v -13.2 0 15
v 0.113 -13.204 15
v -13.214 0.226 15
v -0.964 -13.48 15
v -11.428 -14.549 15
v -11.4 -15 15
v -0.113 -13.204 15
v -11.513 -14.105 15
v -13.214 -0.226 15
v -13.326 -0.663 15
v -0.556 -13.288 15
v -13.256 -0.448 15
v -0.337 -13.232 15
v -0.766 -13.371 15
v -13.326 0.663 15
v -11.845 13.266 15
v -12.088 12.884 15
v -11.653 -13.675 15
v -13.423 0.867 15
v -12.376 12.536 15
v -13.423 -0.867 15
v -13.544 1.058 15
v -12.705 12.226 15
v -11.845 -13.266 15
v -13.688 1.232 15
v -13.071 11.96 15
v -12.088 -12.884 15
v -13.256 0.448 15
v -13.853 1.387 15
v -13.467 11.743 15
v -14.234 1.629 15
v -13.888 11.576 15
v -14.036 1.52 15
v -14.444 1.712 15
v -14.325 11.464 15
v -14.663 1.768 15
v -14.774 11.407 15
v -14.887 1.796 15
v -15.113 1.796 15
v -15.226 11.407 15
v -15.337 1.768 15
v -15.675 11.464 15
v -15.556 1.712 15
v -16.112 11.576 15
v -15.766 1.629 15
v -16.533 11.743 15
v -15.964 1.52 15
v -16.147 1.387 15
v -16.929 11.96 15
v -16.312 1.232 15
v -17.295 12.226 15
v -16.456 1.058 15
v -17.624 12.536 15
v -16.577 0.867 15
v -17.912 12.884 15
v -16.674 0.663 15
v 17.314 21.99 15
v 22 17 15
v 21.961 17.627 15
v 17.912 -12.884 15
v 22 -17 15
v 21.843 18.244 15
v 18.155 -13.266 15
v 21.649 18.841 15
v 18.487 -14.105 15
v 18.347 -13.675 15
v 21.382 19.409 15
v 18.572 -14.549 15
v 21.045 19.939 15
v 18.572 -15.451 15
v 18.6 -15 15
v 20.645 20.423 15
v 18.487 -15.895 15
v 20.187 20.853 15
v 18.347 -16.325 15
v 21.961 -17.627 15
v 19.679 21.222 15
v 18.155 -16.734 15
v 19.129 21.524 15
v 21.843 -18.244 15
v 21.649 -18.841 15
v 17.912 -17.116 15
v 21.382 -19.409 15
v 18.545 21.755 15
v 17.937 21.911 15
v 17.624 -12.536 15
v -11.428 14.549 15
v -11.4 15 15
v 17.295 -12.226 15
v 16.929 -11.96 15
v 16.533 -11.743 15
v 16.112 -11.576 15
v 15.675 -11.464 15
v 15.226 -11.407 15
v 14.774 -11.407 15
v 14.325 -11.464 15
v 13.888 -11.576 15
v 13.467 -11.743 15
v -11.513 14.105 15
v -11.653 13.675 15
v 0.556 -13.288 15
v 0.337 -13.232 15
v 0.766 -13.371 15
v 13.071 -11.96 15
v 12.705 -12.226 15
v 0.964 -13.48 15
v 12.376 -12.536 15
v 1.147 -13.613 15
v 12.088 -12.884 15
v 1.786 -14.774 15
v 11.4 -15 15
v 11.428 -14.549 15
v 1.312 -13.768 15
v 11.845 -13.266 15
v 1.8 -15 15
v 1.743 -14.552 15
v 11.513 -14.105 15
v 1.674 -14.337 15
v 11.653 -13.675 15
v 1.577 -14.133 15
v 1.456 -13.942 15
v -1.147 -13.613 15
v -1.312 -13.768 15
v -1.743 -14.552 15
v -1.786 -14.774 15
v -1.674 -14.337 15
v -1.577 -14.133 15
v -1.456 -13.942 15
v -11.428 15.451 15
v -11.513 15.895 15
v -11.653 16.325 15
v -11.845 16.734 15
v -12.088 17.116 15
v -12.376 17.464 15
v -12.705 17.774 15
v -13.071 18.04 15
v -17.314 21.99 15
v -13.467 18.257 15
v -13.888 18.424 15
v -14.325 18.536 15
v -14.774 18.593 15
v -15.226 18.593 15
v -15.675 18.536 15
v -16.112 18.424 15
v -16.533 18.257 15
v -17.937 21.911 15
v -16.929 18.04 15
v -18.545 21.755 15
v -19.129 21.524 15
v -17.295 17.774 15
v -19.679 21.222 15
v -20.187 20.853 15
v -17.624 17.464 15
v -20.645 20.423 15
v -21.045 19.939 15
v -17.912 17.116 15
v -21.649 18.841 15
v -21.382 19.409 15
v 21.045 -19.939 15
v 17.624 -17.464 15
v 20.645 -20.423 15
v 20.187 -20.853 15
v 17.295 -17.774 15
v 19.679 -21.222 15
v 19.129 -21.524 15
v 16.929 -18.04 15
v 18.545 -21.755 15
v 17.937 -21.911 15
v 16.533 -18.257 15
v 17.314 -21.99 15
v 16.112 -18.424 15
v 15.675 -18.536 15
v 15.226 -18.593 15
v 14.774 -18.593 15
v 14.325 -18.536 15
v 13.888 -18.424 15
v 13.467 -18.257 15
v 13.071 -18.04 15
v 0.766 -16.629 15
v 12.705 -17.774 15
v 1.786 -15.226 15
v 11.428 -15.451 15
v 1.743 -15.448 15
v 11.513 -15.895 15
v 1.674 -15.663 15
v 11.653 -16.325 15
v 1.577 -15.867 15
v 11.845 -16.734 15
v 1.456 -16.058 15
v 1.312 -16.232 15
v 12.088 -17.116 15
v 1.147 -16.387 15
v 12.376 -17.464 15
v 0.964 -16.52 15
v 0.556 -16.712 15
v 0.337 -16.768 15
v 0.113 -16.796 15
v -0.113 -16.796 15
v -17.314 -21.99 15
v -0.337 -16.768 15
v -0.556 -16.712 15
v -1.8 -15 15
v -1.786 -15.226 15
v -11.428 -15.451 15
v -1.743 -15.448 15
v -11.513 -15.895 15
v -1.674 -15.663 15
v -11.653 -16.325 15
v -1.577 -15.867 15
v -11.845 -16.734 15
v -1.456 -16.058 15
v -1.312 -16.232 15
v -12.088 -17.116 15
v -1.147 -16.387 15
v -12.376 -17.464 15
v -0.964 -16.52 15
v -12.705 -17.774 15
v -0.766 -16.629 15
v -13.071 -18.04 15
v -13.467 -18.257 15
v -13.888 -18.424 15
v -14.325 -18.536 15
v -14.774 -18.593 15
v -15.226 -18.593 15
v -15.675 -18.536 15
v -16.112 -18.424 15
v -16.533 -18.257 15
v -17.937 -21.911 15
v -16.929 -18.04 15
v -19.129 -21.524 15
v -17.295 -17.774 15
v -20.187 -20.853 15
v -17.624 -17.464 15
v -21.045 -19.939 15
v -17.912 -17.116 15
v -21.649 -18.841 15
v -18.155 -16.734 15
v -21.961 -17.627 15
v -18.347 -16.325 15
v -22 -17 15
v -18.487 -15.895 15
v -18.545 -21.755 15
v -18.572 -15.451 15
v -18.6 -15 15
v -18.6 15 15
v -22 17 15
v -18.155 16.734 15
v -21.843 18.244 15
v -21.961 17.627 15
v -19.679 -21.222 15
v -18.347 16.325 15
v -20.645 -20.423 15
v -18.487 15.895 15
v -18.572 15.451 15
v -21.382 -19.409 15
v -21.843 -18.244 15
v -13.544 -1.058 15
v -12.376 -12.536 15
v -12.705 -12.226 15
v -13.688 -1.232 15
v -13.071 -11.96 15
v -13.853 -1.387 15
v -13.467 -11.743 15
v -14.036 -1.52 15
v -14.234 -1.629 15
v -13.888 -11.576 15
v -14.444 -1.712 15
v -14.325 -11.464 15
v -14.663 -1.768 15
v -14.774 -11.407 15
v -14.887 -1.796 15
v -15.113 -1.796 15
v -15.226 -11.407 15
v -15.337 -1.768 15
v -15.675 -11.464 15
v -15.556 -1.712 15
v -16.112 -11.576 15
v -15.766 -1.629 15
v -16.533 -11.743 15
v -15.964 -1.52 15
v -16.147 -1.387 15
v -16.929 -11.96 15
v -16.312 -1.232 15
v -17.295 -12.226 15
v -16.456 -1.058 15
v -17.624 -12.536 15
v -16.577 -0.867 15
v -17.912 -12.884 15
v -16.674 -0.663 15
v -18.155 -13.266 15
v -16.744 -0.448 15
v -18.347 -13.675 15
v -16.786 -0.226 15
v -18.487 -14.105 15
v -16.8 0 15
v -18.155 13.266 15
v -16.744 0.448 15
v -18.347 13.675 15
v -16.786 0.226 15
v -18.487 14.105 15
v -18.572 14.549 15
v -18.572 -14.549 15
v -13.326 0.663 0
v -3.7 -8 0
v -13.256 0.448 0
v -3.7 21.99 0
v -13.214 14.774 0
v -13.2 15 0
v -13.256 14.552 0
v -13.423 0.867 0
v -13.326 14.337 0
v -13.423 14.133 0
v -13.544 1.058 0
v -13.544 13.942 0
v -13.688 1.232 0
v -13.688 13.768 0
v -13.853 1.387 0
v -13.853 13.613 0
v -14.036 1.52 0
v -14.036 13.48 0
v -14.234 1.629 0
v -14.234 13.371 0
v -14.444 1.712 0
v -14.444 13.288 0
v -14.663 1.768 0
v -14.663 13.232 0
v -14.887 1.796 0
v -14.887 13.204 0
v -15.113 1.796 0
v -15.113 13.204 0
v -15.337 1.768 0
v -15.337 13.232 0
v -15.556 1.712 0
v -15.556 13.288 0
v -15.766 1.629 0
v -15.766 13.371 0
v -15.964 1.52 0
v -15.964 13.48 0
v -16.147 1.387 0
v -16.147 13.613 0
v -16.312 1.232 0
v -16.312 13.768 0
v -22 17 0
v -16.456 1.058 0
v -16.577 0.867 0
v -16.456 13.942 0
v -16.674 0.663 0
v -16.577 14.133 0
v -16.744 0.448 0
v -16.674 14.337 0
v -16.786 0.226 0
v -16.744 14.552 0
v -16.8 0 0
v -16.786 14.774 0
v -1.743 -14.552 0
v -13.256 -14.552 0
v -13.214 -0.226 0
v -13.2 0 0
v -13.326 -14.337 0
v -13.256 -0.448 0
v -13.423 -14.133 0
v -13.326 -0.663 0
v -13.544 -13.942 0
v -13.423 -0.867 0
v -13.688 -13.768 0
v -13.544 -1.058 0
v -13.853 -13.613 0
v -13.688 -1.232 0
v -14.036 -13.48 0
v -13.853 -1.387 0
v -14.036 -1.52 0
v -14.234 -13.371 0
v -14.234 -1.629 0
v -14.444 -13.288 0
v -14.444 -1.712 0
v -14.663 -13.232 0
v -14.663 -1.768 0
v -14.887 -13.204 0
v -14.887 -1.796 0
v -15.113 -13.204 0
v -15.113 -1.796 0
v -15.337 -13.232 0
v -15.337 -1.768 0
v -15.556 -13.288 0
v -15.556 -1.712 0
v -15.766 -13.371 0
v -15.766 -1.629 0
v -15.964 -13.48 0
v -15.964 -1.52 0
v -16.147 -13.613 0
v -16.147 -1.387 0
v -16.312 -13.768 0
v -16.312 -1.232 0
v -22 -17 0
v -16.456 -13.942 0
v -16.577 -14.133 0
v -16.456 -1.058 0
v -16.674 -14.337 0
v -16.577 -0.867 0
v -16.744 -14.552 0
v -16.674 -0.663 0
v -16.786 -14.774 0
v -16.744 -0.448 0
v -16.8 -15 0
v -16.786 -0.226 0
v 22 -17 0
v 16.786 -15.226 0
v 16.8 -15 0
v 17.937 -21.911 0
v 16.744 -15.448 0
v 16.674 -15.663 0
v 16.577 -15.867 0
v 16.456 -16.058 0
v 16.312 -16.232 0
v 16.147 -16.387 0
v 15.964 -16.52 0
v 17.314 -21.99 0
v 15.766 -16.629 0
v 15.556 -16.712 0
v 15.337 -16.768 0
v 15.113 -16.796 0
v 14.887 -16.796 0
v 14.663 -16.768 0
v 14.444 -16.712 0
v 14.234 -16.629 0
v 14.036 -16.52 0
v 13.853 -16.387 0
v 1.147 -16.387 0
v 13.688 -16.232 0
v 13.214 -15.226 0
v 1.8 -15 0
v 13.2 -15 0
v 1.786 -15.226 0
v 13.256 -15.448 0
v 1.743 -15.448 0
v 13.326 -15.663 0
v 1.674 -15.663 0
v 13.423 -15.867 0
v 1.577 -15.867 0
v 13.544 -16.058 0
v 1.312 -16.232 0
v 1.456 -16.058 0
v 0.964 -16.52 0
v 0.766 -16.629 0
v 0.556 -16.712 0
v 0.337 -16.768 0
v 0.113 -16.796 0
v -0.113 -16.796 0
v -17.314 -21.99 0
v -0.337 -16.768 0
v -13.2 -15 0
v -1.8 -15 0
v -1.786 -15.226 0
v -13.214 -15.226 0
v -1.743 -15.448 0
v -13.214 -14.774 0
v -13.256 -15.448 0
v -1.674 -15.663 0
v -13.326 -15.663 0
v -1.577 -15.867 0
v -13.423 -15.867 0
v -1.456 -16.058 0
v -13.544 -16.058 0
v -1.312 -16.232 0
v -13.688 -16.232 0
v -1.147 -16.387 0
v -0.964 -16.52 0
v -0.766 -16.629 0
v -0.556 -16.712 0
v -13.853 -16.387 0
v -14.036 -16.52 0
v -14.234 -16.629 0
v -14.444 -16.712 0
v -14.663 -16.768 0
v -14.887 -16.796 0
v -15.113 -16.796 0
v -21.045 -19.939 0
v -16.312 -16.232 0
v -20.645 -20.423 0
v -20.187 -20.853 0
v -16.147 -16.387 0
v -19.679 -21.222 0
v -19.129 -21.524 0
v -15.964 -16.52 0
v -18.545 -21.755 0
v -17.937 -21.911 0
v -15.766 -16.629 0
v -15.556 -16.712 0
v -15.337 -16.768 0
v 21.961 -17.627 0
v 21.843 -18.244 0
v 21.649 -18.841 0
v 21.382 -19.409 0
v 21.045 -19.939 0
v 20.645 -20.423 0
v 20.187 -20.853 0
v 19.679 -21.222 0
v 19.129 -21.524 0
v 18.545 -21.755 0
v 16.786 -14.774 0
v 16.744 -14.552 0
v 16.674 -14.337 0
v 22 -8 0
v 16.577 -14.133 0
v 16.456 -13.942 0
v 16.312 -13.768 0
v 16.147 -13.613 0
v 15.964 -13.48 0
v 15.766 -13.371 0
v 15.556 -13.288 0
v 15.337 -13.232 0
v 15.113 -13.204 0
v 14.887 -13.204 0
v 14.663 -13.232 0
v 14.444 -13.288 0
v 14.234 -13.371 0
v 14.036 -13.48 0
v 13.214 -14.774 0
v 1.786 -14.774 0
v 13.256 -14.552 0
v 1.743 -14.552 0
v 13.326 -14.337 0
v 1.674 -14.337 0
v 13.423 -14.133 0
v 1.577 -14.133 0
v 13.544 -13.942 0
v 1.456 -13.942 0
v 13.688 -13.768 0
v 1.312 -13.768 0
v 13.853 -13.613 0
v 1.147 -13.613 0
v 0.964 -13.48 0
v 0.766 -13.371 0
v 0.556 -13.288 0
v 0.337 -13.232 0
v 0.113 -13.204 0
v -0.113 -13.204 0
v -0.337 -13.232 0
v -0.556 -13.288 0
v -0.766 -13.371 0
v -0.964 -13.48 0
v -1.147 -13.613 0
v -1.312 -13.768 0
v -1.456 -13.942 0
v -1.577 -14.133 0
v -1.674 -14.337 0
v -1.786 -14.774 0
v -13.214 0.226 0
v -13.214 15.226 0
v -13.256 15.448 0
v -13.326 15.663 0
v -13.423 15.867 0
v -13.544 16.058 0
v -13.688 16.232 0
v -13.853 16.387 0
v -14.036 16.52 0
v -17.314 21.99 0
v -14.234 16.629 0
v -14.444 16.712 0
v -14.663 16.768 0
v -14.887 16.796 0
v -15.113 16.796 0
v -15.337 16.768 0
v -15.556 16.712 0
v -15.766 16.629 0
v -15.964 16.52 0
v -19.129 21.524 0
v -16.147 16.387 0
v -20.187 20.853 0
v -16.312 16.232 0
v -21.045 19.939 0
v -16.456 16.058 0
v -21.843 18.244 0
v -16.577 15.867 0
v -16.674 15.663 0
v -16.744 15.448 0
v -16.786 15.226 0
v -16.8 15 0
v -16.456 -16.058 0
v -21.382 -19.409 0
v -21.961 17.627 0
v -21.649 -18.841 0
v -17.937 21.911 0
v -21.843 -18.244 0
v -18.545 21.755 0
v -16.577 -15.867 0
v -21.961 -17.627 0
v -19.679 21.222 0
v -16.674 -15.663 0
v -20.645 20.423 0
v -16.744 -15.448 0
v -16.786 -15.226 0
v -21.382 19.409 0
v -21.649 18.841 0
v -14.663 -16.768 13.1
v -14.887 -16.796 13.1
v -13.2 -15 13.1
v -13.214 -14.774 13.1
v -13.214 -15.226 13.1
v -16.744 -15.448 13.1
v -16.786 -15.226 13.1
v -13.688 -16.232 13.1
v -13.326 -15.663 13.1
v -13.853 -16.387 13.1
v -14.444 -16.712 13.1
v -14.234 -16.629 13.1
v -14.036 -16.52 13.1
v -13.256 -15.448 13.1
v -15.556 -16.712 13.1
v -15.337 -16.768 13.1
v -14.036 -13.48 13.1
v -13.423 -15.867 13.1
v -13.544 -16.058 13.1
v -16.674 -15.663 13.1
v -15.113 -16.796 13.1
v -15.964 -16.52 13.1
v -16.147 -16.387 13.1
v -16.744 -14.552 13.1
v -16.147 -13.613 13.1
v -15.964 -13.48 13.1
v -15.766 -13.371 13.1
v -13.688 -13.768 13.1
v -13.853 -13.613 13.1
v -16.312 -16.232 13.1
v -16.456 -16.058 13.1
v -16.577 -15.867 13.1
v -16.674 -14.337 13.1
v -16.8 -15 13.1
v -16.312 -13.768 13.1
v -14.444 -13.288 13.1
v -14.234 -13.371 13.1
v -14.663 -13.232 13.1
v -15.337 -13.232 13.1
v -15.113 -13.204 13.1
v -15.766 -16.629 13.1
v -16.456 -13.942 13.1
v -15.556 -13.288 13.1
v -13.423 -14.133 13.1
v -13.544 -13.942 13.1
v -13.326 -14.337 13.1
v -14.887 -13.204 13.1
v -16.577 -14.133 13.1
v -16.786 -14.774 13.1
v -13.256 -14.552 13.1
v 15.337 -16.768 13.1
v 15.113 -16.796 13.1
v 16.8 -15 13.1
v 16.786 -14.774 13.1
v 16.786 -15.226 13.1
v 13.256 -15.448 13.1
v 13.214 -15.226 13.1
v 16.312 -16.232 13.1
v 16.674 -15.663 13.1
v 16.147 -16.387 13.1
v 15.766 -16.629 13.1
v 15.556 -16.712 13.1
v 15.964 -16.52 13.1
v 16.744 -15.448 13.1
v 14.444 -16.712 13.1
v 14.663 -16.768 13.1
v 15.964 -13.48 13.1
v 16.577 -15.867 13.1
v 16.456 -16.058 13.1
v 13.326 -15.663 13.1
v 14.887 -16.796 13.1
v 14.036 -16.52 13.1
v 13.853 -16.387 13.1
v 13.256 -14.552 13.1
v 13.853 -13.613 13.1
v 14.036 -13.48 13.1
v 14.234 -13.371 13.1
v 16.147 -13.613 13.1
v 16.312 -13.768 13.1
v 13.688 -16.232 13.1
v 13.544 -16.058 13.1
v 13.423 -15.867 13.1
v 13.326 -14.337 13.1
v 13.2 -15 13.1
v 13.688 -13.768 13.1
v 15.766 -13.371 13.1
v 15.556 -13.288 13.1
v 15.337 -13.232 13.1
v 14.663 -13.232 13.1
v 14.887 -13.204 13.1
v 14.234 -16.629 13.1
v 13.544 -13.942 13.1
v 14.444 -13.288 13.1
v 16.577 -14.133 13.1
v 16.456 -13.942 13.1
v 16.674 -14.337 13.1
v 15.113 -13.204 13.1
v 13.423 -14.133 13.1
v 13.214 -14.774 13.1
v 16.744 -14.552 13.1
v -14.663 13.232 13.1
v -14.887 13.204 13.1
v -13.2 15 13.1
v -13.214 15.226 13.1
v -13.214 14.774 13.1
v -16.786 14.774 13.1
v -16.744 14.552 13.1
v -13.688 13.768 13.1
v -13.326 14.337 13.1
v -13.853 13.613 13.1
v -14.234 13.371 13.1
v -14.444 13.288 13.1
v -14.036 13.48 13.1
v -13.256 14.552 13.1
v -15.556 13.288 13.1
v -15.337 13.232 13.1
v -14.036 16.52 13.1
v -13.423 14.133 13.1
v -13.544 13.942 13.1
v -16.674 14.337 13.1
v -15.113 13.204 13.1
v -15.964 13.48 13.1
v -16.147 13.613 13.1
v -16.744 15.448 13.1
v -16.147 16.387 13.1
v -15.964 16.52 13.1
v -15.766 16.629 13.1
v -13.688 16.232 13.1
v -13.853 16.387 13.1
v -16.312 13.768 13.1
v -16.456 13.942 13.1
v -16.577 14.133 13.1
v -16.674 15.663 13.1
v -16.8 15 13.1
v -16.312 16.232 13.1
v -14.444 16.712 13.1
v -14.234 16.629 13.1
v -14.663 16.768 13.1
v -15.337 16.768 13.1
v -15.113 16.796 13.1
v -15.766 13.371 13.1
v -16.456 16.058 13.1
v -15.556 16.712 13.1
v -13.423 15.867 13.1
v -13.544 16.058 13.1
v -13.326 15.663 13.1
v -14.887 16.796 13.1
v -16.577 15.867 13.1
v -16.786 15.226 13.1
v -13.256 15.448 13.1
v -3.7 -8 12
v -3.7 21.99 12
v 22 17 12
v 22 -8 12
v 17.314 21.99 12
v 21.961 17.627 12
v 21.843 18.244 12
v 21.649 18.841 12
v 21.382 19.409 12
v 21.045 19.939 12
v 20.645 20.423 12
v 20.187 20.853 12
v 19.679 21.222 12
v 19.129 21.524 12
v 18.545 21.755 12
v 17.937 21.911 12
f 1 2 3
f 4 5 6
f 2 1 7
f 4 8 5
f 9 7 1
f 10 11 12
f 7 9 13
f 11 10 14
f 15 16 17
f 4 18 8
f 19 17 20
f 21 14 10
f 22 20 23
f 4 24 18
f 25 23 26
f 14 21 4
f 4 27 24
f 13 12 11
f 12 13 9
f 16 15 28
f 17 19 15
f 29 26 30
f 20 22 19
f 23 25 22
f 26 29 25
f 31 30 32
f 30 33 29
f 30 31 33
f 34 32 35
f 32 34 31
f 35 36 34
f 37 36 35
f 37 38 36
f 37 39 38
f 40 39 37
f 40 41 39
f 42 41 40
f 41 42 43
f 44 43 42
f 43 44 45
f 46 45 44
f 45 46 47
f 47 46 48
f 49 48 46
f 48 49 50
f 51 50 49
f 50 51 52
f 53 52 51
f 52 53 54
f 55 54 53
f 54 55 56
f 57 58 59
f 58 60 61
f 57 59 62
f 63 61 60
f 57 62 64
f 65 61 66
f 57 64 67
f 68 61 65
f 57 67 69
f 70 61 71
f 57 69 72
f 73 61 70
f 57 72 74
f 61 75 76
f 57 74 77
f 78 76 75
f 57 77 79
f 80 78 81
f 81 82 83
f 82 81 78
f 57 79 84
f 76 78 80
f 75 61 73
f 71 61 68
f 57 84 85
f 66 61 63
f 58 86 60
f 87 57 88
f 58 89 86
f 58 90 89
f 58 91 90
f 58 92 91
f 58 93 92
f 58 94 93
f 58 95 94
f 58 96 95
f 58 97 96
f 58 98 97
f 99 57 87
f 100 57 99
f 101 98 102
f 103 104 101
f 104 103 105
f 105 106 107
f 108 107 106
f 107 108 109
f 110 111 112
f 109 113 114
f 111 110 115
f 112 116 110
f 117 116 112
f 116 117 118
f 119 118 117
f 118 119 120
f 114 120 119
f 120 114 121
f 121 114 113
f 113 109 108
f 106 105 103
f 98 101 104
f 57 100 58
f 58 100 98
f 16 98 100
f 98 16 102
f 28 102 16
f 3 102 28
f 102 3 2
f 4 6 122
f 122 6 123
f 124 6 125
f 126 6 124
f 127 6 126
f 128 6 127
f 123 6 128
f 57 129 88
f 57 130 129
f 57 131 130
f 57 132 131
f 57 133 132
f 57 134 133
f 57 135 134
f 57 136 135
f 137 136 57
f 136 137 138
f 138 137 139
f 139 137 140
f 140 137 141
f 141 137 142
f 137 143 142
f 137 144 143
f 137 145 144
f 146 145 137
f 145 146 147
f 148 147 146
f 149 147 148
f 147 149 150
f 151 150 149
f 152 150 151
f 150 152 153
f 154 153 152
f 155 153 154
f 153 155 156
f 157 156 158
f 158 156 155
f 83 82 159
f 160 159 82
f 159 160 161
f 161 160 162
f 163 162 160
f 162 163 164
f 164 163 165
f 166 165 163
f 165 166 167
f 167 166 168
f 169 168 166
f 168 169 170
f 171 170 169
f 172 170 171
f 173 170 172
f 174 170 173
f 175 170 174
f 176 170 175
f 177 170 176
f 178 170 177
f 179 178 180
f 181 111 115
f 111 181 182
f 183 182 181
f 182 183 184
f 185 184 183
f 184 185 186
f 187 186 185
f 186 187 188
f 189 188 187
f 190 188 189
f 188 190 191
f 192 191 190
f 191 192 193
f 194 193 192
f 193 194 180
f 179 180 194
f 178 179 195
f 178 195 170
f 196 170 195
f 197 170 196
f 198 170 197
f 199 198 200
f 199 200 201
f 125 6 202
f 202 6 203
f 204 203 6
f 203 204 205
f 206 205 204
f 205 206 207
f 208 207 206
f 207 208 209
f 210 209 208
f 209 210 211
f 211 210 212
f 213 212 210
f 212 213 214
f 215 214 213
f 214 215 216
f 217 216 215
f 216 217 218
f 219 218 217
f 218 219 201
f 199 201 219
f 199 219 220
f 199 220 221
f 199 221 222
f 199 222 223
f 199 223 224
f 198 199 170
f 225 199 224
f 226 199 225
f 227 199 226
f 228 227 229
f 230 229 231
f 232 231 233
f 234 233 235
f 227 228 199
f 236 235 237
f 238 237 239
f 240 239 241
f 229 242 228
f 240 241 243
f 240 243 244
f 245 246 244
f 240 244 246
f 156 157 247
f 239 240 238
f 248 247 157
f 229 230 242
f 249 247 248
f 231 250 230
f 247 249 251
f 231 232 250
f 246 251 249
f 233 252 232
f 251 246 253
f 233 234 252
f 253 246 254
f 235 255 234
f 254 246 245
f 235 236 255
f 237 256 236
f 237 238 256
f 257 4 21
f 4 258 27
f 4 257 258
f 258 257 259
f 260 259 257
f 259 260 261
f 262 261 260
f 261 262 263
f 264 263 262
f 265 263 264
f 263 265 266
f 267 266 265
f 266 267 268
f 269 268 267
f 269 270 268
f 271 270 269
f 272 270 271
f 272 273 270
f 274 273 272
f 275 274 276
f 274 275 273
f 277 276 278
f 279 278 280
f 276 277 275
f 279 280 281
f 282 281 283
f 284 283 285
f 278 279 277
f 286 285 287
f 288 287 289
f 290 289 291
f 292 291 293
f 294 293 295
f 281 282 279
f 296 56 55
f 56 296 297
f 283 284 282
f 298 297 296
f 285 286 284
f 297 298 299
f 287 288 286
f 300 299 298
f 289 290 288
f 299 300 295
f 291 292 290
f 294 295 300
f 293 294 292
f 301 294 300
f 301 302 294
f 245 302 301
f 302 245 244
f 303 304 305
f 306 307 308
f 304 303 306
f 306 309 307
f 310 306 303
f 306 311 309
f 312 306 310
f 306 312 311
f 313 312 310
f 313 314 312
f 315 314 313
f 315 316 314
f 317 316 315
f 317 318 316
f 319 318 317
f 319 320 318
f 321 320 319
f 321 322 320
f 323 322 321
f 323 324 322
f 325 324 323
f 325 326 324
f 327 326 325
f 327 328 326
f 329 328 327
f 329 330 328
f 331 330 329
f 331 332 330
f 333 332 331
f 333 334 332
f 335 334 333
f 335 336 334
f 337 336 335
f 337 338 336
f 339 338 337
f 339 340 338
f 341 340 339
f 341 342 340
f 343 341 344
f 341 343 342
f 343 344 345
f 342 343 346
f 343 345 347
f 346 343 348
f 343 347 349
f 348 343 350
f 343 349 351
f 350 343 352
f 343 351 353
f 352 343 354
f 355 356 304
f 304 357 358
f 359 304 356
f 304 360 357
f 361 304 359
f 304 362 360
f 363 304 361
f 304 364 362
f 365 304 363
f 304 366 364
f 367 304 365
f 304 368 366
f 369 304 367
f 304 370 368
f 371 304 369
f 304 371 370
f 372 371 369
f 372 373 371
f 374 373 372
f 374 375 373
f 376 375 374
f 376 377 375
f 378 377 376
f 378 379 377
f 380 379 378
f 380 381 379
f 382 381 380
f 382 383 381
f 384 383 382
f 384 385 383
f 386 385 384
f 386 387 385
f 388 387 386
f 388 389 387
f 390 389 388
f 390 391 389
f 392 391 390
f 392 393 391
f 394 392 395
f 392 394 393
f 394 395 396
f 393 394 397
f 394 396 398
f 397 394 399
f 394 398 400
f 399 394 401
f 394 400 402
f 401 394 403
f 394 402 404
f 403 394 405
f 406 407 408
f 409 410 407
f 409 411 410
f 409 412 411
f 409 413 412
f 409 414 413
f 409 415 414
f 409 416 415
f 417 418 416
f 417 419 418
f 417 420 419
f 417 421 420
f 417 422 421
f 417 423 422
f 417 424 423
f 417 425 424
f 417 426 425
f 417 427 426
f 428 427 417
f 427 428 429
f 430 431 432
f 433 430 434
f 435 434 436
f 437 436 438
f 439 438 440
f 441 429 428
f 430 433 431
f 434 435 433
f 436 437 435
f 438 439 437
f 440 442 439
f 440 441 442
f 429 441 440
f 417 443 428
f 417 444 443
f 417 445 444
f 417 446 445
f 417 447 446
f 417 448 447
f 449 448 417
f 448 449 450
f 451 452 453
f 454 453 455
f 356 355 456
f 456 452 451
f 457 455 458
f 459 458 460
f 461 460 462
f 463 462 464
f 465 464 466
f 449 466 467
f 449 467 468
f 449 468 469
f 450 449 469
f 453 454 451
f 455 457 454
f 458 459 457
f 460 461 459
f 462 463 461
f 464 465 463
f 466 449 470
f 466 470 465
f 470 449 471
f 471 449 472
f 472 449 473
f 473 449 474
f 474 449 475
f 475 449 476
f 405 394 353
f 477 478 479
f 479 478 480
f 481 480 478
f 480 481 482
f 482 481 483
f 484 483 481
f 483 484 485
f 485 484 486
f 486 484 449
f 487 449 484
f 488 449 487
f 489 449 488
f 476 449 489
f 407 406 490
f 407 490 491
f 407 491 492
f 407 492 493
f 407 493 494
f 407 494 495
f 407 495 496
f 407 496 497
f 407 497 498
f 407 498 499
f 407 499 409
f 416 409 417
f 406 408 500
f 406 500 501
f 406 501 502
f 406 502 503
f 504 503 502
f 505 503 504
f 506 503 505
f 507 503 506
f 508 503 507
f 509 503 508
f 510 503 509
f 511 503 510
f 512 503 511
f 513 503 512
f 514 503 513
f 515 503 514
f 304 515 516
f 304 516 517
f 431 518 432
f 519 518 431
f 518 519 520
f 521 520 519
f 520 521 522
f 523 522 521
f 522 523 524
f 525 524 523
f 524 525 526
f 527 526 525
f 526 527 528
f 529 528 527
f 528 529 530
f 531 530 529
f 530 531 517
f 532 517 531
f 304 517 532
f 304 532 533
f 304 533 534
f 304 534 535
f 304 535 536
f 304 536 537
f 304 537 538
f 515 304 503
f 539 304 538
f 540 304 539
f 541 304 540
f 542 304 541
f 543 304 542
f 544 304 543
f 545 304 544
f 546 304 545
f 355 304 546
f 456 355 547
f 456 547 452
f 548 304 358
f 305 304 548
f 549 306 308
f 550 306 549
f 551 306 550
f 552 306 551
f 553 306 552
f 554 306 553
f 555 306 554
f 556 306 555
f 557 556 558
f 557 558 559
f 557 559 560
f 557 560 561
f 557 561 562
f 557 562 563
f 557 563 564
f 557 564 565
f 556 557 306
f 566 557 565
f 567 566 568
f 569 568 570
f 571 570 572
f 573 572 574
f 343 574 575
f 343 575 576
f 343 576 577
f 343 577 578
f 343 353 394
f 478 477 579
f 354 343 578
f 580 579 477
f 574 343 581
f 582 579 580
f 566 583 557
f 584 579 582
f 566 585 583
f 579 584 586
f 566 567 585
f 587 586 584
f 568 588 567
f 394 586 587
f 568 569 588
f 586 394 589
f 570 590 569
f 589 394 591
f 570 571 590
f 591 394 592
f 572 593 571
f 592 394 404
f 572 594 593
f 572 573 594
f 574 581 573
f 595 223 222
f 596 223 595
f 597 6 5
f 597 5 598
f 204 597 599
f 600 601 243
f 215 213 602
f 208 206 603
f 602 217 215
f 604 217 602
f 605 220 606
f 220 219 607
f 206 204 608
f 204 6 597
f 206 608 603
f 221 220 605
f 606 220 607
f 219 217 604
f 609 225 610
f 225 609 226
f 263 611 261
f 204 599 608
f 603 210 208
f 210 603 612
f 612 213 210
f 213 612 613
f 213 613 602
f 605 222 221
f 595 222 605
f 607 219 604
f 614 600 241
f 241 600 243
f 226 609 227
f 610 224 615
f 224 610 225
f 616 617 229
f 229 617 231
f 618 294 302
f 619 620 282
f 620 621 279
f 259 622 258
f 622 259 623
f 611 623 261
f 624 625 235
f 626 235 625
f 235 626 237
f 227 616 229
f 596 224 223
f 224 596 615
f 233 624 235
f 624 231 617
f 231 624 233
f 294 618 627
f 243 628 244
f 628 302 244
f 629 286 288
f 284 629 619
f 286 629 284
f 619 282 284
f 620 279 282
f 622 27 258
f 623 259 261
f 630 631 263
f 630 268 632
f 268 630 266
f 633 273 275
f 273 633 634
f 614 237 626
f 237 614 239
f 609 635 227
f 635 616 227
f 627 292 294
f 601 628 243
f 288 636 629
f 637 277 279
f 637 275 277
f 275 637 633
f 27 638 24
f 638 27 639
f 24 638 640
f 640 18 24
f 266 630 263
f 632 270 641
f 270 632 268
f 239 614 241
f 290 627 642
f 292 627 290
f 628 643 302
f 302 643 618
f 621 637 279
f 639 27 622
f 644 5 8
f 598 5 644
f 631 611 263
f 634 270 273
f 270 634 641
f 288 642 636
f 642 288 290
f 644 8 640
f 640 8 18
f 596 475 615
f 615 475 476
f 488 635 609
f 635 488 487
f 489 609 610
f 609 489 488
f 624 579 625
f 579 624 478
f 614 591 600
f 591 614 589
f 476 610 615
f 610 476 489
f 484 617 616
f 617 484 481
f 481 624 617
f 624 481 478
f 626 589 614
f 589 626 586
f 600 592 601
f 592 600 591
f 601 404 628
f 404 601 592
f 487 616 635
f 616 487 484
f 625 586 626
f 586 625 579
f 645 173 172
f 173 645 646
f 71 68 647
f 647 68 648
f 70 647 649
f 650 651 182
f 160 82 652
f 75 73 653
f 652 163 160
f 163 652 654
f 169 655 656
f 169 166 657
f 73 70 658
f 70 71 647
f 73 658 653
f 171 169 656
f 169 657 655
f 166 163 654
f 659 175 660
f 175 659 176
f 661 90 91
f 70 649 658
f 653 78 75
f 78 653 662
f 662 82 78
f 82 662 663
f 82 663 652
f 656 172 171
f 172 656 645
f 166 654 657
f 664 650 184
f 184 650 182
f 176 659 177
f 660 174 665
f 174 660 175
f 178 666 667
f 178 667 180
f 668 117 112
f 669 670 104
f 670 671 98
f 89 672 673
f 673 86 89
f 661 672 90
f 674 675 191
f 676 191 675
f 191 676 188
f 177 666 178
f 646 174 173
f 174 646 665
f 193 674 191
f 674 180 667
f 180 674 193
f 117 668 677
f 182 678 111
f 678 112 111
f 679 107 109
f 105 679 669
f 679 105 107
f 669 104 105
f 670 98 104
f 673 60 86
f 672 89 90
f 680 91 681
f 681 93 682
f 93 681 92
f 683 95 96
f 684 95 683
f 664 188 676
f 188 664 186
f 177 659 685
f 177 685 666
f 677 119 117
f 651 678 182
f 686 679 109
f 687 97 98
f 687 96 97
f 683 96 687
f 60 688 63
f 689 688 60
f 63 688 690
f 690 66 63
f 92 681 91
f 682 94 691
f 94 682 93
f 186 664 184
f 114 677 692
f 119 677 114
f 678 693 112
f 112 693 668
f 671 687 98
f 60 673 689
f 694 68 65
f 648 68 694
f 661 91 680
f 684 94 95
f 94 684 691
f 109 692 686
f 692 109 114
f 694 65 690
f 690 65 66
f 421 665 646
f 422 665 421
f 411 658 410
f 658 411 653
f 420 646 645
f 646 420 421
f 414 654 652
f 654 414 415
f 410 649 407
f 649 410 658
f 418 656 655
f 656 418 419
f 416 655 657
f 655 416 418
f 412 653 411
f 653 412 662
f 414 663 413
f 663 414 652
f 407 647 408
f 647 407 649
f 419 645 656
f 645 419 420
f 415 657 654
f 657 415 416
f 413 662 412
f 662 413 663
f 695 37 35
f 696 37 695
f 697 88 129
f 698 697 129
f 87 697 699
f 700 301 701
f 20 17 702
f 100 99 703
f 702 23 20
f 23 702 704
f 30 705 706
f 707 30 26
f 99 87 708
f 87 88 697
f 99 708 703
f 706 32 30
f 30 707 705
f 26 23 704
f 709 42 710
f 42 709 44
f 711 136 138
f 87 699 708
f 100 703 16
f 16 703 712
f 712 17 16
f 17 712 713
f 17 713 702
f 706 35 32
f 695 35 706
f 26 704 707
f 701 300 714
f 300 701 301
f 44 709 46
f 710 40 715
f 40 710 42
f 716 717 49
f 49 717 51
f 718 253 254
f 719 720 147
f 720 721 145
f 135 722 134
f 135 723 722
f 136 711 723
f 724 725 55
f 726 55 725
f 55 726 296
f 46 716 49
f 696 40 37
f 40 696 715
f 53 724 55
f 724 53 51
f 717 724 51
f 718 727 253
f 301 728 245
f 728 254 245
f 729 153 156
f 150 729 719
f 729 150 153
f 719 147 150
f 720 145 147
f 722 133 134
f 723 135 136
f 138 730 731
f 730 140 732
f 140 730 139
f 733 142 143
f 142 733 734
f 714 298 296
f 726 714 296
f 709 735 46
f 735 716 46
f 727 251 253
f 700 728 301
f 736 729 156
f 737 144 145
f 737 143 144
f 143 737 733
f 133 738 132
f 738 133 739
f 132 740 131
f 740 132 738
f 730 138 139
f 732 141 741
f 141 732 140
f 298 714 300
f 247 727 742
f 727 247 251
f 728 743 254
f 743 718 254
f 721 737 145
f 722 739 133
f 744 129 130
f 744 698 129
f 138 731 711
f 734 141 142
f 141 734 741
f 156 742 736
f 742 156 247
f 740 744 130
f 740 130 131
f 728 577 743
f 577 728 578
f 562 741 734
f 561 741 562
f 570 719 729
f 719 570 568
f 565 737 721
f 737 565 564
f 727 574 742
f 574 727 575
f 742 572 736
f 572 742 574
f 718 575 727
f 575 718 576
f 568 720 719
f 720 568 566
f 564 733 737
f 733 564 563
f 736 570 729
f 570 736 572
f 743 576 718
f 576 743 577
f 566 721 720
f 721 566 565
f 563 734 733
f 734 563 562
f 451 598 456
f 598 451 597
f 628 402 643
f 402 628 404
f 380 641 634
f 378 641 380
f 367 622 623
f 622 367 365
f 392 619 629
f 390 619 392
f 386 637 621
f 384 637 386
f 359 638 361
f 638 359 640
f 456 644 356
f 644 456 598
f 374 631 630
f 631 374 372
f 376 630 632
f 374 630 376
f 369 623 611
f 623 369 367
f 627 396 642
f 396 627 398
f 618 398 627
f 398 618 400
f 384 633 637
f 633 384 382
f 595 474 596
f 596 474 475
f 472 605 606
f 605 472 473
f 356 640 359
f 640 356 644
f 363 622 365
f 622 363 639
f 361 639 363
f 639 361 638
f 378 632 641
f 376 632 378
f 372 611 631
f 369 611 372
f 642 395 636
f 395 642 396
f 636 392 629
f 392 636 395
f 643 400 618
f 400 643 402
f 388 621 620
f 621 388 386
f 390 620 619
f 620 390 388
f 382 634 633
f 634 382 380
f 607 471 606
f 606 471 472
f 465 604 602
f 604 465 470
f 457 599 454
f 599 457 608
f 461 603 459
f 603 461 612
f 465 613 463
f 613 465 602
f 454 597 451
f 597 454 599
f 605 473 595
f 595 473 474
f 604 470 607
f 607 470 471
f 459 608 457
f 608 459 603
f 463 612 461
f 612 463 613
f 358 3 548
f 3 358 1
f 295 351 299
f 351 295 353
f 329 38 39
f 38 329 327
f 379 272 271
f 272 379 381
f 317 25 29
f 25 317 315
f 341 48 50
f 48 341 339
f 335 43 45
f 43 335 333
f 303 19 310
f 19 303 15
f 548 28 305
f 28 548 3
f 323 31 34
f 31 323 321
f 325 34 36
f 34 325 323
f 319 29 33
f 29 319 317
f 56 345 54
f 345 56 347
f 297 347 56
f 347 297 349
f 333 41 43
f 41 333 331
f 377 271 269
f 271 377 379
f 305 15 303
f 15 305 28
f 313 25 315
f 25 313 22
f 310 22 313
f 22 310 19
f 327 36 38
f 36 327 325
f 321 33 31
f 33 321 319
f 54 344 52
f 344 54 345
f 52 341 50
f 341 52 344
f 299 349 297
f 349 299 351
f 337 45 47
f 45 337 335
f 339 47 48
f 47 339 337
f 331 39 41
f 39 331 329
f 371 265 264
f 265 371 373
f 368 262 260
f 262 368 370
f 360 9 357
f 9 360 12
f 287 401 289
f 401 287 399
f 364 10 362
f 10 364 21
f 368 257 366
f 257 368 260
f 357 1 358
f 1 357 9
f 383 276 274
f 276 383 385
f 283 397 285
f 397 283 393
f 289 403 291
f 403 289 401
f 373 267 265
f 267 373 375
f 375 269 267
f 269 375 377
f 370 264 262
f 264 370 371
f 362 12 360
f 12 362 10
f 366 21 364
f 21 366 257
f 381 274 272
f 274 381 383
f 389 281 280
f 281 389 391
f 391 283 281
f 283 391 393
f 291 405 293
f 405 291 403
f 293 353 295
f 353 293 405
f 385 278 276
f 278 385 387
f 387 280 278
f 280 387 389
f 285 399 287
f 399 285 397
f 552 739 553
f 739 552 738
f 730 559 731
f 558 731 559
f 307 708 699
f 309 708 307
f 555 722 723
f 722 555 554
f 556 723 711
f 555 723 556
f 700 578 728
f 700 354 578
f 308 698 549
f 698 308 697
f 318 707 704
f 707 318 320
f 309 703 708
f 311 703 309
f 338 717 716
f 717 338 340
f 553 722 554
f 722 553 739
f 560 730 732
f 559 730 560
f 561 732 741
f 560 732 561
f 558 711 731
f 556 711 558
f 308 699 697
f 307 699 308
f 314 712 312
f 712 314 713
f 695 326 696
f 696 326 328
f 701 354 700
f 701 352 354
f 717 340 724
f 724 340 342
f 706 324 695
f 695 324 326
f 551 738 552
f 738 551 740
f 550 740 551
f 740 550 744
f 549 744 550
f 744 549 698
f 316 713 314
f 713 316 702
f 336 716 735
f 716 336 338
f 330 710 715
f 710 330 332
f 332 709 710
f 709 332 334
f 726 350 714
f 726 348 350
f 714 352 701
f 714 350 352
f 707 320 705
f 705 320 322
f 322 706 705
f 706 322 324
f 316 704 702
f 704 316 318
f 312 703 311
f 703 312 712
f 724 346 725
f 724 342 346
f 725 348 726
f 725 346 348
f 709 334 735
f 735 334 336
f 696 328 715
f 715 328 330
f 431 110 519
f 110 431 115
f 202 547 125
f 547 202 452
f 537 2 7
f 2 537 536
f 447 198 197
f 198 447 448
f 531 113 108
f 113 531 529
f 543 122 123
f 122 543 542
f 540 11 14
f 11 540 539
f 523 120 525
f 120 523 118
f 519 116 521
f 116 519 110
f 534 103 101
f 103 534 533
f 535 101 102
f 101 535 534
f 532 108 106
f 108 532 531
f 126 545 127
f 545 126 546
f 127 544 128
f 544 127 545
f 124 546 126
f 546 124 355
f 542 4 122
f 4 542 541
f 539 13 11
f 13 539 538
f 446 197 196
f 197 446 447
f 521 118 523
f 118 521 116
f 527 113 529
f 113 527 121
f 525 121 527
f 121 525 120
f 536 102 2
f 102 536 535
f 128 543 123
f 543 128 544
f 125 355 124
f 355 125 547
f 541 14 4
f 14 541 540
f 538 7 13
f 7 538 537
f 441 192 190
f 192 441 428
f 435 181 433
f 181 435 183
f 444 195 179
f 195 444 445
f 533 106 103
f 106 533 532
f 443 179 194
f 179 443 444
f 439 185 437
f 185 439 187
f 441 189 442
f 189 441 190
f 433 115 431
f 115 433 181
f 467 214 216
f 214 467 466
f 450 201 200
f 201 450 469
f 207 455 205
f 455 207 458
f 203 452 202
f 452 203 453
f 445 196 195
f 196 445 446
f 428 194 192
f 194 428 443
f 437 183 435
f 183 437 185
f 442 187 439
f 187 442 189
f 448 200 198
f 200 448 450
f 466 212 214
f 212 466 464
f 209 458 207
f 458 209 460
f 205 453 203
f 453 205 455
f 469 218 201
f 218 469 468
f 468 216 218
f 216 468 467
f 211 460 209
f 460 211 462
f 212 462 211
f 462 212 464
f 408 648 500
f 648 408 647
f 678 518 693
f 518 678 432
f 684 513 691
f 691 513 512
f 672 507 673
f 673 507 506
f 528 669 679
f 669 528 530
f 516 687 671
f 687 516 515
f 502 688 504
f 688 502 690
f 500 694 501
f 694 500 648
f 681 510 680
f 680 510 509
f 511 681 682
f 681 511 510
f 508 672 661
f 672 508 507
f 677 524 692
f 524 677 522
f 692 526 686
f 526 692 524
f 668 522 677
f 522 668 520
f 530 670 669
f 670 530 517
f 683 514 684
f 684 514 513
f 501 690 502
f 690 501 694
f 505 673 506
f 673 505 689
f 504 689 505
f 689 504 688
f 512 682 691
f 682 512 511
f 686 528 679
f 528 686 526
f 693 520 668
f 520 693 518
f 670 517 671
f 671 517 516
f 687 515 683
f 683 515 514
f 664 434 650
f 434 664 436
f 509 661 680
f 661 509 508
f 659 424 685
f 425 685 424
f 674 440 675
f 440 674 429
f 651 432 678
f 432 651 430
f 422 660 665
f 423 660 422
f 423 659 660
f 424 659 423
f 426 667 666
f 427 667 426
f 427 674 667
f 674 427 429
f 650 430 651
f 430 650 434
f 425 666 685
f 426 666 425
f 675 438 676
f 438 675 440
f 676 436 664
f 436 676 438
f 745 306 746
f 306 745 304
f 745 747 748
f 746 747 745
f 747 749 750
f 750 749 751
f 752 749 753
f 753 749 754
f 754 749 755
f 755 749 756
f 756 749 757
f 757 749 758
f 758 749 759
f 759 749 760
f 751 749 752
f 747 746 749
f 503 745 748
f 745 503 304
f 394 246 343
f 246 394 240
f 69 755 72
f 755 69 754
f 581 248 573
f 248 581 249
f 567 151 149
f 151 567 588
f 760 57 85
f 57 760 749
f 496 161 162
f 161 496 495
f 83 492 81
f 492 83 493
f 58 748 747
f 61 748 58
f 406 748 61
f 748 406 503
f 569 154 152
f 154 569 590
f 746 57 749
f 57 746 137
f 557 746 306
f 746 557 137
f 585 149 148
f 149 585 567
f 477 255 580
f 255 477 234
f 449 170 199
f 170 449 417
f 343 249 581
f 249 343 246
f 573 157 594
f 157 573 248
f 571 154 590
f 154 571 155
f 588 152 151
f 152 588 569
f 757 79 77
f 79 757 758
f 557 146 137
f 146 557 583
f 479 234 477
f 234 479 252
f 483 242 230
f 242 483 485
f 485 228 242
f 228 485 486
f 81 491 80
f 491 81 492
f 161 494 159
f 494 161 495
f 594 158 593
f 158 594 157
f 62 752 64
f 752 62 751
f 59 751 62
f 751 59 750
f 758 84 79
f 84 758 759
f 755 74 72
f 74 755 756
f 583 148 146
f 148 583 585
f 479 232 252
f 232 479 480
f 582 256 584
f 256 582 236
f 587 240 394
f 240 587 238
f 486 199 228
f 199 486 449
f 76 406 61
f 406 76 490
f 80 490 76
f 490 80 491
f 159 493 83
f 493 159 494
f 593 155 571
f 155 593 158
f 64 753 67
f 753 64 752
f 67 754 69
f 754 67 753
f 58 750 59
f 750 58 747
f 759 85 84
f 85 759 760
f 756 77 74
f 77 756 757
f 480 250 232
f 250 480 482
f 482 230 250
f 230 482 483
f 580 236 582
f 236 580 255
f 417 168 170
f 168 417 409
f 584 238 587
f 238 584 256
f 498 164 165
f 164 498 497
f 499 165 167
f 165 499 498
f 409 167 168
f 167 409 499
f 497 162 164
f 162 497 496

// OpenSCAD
$fn = 50;


difference() {
	union() {
		hull() {
			translate(v = [-17.0000000000, 17.0000000000, 0]) {
				cylinder(h = 15, r = 5);
			}
			translate(v = [17.0000000000, 17.0000000000, 0]) {
				cylinder(h = 15, r = 5);
			}
			translate(v = [-17.0000000000, -17.0000000000, 0]) {
				cylinder(h = 15, r = 5);
			}
			translate(v = [17.0000000000, -17.0000000000, 0]) {
				cylinder(h = 15, r = 5);
			}
		}
	}
	union() {
		translate(v = [-15.0000000000, -15.0000000000, 15]) {
			rotate(a = [0, 0, 0]) {
				difference() {
					union() {
						#translate(v = [0, 0, -15.0000000000]) {
							cylinder(h = 15, r = 1.5000000000);
						}
						#translate(v = [0, 0, -1.9000000000]) {
							cylinder(h = 1.9000000000, r1 = 1.8000000000, r2 = 3.6000000000);
						}
						#translate(v = [0, 0, -15.0000000000]) {
							cylinder(h = 15, r = 1.8000000000);
						}
						#translate(v = [0, 0, -15.0000000000]) {
							cylinder(h = 15, r = 1.5000000000);
						}
					}
					union();
				}
			}
		}
		translate(v = [15.0000000000, -15.0000000000, 15]) {
			rotate(a = [0, 0, 0]) {
				difference() {
					union() {
						#translate(v = [0, 0, -15.0000000000]) {
							cylinder(h = 15, r = 1.5000000000);
						}
						#translate(v = [0, 0, -1.9000000000]) {
							cylinder(h = 1.9000000000, r1 = 1.8000000000, r2 = 3.6000000000);
						}
						#translate(v = [0, 0, -15.0000000000]) {
							cylinder(h = 15, r = 1.8000000000);
						}
						#translate(v = [0, 0, -15.0000000000]) {
							cylinder(h = 15, r = 1.5000000000);
						}
					}
					union();
				}
			}
		}
		translate(v = [-15.0000000000, 15.0000000000, 15]) {
			rotate(a = [0, 0, 0]) {
				difference() {
					union() {
						#translate(v = [0, 0, -15.0000000000]) {
							cylinder(h = 15, r = 1.5000000000);
						}
						#translate(v = [0, 0, -1.9000000000]) {
							cylinder(h = 1.9000000000, r1 = 1.8000000000, r2 = 3.6000000000);
						}
						#translate(v = [0, 0, -15.0000000000]) {
							cylinder(h = 15, r = 1.8000000000);
						}
						#translate(v = [0, 0, -15.0000000000]) {
							cylinder(h = 15, r = 1.5000000000);
						}
					}
					union();
				}
			}
		}
		translate(v = [-15.0000000000, -15.0000000000, 0]) {
			cylinder(h = 15, r = 1.8000000000);
		}
		translate(v = [-15.0000000000, 0.0000000000, 0]) {
			cylinder(h = 15, r = 1.8000000000);
		}
		translate(v = [-15.0000000000, 15.0000000000, 0]) {
			cylinder(h = 15, r = 1.8000000000);
		}
		translate(v = [-15.0000000000, -15.0000000000, 0]) {
			cylinder(h = 15, r = 1.8000000000);
		}
		translate(v = [0.0000000000, -15.0000000000, 0]) {
			cylinder(h = 15, r = 1.8000000000);
		}
		translate(v = [15.0000000000, -15.0000000000, 0]) {
			cylinder(h = 15, r = 1.8000000000);
		}
		#translate(v = [-3.7000000000, -8.0000000000, 0]) {
			cube(size = [156.4000000000, 105.6000000000, 12]);
		}
	}
}
